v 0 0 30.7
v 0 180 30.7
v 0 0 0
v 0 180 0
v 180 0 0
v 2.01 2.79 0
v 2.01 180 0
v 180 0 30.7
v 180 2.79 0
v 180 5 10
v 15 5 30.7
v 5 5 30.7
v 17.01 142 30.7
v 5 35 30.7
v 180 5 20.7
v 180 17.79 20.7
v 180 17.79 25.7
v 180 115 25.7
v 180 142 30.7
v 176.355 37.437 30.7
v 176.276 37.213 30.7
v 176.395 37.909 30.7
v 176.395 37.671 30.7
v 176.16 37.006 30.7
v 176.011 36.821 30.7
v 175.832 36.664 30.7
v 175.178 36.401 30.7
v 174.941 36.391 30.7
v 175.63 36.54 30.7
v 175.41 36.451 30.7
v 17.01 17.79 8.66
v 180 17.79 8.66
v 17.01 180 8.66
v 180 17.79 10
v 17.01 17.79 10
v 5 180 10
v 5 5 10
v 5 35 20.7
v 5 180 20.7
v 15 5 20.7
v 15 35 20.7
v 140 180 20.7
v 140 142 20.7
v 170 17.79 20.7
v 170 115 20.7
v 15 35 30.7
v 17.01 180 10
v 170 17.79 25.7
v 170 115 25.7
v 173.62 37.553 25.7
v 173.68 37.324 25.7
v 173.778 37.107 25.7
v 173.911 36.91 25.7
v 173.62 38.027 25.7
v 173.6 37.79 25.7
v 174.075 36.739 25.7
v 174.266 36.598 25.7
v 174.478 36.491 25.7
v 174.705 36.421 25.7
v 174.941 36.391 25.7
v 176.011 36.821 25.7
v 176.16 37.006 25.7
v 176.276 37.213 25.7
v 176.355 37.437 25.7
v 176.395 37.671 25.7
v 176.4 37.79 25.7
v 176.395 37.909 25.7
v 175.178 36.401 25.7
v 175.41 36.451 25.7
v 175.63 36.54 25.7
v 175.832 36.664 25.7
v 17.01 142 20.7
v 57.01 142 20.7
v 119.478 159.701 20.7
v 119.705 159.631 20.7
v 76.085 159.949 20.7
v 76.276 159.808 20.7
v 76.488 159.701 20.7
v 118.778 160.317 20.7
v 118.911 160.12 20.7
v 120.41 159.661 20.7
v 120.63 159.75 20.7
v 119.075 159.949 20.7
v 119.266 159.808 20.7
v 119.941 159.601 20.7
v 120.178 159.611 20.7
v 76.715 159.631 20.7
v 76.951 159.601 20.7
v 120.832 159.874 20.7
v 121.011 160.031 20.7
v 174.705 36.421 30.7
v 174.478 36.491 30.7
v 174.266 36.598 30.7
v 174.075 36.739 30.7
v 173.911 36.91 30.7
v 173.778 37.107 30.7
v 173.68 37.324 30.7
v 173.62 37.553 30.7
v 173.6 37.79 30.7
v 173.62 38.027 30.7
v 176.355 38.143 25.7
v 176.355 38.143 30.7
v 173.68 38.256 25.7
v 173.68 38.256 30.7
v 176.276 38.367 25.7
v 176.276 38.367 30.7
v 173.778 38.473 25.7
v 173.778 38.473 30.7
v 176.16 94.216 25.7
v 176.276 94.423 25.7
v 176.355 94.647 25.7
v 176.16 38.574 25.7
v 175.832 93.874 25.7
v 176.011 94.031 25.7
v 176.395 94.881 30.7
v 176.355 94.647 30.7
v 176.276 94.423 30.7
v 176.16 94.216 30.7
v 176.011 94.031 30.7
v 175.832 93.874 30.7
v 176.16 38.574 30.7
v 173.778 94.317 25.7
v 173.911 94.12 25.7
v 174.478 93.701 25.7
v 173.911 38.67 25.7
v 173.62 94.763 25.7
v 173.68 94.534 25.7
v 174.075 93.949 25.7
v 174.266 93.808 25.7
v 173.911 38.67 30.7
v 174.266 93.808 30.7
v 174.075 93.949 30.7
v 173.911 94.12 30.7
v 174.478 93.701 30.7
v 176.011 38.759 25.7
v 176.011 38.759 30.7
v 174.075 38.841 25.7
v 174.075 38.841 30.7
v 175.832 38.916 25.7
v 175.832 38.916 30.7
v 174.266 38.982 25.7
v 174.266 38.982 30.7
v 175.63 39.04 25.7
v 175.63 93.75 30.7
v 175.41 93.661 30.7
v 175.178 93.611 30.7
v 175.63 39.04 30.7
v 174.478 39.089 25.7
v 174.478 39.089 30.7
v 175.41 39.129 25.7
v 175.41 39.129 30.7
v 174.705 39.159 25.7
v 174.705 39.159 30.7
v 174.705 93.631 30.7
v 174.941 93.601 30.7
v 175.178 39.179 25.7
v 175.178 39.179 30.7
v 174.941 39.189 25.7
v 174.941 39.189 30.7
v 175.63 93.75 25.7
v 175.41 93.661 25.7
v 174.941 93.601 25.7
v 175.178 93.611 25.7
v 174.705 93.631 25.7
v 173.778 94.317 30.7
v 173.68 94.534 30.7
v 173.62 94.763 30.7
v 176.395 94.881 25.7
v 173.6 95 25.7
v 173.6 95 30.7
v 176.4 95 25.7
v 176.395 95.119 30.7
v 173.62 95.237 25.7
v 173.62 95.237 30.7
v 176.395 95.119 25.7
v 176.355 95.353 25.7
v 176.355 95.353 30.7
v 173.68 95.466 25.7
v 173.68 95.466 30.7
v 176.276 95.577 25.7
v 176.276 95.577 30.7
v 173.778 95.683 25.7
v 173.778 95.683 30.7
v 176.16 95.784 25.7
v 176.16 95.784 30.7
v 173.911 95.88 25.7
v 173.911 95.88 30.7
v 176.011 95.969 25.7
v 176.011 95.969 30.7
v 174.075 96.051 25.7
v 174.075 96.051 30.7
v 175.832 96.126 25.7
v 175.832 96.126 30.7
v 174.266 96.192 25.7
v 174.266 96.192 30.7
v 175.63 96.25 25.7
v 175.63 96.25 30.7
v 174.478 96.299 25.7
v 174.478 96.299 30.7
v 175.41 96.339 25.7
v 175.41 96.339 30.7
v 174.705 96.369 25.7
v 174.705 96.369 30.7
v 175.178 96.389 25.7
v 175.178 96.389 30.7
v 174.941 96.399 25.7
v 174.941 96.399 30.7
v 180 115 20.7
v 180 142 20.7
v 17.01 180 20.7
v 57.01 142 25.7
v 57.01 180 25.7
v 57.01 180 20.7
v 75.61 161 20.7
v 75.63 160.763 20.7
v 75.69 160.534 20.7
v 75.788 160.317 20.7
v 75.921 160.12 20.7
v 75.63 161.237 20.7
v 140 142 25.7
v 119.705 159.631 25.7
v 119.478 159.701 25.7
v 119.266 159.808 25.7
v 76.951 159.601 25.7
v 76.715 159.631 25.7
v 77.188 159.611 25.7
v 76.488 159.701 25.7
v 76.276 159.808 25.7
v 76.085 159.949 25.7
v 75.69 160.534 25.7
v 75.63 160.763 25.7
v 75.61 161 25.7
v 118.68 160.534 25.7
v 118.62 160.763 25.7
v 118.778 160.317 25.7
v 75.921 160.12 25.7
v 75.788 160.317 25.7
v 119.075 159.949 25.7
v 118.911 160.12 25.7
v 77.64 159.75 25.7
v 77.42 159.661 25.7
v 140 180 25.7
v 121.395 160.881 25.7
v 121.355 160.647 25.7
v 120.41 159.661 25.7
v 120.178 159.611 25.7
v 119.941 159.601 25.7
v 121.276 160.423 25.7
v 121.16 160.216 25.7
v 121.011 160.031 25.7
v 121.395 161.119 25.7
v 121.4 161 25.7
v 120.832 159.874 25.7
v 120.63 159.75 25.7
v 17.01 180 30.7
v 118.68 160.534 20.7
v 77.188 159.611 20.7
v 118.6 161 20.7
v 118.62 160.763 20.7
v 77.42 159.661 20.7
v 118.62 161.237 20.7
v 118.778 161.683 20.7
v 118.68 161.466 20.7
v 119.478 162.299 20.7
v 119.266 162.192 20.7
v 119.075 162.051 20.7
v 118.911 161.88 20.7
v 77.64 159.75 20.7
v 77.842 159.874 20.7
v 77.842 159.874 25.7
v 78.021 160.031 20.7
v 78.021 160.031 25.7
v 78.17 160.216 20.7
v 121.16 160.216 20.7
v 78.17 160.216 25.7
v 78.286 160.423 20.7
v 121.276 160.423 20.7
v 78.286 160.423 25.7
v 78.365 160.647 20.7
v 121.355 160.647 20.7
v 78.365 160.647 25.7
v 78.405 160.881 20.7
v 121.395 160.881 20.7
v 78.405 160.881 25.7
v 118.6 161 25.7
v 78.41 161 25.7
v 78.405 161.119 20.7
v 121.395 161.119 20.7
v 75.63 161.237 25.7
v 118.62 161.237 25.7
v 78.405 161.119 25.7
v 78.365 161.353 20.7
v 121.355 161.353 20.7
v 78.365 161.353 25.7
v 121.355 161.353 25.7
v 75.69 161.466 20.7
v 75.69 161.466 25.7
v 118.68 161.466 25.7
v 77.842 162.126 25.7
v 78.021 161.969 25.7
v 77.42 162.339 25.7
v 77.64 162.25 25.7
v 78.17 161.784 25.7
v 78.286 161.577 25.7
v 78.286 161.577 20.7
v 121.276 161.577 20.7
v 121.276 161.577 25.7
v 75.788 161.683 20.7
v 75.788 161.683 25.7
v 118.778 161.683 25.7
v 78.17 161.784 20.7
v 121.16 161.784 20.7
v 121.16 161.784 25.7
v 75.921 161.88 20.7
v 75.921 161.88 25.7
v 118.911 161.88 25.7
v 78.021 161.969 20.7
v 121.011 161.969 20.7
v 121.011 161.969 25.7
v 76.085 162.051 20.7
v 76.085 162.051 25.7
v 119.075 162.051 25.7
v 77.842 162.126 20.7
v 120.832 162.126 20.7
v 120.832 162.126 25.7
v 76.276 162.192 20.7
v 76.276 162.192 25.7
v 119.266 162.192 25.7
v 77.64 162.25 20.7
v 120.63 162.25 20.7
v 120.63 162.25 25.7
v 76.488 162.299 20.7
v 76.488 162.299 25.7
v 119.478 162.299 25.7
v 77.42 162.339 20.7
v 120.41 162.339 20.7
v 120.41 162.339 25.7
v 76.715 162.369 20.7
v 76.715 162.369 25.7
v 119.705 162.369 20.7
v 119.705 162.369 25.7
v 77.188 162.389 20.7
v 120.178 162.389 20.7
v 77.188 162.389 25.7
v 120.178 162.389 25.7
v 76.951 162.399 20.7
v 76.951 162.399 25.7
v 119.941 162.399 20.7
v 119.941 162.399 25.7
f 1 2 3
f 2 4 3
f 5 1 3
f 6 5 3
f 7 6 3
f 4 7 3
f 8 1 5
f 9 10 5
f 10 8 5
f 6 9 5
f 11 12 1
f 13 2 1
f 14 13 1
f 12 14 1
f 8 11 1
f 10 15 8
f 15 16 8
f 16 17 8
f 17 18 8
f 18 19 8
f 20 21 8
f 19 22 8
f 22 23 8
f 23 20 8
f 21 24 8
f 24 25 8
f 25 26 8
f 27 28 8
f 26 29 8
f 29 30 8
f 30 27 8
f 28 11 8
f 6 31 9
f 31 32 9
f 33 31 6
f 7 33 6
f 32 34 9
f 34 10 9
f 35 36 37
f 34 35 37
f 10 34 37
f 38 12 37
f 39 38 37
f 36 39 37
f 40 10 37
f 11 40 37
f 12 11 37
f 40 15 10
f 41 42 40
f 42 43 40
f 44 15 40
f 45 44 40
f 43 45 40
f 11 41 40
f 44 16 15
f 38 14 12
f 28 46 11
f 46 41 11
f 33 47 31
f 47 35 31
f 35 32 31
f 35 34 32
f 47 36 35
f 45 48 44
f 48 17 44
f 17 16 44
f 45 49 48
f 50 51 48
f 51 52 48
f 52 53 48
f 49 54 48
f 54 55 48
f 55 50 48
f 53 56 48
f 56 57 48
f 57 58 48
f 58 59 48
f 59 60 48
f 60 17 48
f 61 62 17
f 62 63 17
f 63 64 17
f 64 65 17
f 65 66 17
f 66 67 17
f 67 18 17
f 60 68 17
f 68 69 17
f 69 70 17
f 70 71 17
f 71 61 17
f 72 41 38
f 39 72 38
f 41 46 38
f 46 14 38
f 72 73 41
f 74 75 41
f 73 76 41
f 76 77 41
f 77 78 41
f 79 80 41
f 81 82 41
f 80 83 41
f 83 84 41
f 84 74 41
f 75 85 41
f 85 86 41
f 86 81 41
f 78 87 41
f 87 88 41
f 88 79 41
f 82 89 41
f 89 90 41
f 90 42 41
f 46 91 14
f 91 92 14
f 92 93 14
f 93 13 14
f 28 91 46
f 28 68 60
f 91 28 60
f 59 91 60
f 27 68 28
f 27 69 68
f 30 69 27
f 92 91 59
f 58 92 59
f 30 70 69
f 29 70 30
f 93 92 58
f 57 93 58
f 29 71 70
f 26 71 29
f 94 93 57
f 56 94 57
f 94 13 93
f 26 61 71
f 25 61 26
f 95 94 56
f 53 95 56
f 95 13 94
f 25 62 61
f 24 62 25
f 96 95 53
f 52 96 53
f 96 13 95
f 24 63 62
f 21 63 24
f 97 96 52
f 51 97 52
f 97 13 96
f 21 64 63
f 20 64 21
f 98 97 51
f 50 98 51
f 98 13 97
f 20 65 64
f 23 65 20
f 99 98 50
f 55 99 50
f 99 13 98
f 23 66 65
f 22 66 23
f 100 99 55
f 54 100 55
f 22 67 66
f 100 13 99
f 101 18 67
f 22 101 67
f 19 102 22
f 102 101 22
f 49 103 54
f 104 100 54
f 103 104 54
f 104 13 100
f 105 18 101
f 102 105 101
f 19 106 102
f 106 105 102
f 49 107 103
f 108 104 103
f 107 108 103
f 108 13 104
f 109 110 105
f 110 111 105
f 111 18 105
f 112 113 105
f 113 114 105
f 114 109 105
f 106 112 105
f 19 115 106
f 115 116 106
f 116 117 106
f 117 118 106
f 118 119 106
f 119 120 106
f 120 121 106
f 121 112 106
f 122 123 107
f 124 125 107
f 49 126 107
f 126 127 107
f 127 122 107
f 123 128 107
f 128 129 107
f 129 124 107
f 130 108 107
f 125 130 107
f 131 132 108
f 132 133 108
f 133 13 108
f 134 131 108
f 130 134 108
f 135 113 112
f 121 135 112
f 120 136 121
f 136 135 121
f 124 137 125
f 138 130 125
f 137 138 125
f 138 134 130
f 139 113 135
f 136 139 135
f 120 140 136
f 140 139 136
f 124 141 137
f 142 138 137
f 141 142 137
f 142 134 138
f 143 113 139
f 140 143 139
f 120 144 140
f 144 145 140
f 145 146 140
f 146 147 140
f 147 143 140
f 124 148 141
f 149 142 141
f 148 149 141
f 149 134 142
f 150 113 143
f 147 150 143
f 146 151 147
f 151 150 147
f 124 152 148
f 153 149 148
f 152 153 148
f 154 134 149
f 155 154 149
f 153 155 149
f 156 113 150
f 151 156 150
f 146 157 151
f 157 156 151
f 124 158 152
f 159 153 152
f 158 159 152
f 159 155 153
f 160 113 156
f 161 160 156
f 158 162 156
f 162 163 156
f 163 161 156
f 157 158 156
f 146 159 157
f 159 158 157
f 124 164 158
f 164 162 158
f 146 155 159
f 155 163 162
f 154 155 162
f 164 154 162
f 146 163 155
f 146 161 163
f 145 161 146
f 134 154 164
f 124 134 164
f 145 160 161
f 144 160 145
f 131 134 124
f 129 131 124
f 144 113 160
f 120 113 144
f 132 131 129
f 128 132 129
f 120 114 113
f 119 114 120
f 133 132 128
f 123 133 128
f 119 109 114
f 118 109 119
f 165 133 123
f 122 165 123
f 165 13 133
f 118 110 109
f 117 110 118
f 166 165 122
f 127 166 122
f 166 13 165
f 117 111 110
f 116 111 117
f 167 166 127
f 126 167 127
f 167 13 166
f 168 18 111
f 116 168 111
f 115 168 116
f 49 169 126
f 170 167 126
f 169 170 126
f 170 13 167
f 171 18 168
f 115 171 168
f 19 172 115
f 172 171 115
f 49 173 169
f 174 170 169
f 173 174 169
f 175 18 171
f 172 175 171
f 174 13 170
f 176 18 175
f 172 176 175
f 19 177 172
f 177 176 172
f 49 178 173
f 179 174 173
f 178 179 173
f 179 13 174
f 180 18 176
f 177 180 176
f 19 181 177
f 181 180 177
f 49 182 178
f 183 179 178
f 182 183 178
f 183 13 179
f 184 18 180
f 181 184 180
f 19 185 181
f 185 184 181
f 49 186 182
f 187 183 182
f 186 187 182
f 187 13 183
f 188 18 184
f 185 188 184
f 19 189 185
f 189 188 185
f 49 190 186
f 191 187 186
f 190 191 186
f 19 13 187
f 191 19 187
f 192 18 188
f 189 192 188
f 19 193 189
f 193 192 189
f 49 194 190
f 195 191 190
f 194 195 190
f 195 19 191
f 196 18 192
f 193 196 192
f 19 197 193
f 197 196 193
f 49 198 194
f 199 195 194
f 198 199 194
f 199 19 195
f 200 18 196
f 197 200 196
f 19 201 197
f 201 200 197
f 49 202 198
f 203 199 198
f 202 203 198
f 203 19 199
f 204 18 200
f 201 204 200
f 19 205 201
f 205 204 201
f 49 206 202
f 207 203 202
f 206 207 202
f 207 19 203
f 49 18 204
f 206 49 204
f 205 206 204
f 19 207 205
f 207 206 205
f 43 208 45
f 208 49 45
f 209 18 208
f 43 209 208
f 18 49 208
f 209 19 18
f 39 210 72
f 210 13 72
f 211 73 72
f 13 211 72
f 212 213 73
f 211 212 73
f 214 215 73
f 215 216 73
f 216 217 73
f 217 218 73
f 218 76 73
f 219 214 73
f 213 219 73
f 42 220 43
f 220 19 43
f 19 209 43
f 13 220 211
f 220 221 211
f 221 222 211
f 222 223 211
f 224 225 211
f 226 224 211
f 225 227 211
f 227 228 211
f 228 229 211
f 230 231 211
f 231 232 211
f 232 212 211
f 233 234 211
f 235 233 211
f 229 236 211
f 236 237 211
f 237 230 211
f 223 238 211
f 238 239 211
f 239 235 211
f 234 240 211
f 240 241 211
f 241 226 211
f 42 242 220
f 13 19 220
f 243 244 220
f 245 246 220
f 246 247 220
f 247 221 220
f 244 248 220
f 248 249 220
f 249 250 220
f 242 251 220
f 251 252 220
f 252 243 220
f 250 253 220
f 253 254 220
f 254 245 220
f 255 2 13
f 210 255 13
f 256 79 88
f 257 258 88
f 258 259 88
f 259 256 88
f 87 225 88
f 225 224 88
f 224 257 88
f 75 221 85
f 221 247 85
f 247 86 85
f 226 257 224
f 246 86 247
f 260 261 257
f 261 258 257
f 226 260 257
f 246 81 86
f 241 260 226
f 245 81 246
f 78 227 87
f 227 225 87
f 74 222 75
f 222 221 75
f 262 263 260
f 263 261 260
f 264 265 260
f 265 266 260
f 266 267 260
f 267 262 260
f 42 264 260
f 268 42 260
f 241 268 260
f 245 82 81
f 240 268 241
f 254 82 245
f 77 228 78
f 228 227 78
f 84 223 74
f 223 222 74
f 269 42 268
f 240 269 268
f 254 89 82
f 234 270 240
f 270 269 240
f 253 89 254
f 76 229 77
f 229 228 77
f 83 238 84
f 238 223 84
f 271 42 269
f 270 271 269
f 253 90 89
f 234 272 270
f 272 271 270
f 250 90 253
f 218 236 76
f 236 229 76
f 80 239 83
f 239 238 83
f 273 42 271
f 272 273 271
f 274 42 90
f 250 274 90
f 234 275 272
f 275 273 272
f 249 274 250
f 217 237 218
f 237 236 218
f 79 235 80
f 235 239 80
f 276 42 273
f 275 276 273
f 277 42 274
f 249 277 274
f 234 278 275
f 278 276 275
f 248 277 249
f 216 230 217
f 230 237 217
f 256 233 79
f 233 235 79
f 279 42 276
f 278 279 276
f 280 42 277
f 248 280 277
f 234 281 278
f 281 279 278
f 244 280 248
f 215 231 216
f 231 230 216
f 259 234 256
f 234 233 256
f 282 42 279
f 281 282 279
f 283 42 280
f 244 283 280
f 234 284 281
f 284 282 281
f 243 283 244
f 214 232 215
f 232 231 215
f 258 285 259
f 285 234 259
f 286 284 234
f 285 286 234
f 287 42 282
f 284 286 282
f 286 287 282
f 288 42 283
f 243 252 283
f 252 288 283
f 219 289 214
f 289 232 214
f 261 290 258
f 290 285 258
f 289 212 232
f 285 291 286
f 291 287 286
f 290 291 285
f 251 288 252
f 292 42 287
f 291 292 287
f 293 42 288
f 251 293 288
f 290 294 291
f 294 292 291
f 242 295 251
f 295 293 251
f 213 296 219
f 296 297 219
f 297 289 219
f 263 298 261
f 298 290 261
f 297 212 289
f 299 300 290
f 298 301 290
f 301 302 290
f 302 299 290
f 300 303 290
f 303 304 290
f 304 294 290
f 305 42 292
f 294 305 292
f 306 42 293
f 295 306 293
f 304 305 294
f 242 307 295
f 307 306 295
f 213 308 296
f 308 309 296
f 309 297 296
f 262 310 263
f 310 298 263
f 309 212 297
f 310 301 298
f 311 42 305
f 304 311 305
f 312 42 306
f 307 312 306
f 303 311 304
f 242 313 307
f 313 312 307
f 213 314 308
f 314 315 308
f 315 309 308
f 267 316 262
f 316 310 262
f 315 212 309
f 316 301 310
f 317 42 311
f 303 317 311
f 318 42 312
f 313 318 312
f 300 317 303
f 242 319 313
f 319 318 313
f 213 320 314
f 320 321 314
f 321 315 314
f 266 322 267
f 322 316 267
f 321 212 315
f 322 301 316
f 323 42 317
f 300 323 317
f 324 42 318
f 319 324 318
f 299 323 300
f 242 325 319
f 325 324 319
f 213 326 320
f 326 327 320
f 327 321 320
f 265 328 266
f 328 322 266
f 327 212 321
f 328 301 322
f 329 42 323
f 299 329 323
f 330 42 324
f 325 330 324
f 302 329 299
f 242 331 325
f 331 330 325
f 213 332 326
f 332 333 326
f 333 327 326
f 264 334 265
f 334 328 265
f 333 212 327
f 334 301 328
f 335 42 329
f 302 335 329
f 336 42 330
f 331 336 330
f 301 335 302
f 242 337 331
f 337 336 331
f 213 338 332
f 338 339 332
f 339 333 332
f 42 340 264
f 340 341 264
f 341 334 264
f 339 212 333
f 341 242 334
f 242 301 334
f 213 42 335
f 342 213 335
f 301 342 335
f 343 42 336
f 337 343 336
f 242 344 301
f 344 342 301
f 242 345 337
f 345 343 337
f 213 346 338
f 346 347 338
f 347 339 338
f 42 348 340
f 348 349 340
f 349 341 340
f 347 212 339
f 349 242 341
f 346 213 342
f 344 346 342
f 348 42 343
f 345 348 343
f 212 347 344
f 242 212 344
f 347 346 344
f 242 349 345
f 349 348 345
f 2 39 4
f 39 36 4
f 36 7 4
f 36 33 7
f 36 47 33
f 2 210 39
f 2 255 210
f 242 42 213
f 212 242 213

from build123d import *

# Parameters (mm, degrees)
CROQUIS1_W              = 180
CROQUIS1_H              = 180
SALIENTE_EXTRUIR1_DEPTH = 30.7
CROQUIS2_W              = 162.99
CROQUIS2_H              = 162.21
CORTAR_EXTRUIR1_DEPTH   = 20.7
CROQUIS4_W              = 175
CROQUIS4_H              = 10.7
CORTAR_EXTRUIR2_DEPTH   = 175
CROQUIS5_W              = 40
CROQUIS5_H              = 38
CORTAR_EXTRUIR3_DEPTH   = 10
CROQUIS6_W              = 82.99
CROQUIS6_H              = 38
CORTAR_EXTRUIR4_DEPTH   = 5
CROQUIS7_W              = 10
CROQUIS7_H              = 97.21
CORTAR_EXTRUIR5_DEPTH   = 5
CROQUIS8_W              = 10
CROQUIS8_H              = 30
CORTAR_EXTRUIR6_DEPTH   = 20
CROQUIS9_R              = 1.4
CORTAR_EXTRUIR7_DEPTH   = 20
CHAFL_N1_SIZE           = 15
CHAFL_N1_SIZE2          = 8.660254038


with BuildPart() as part:
    # Croquis1 → Saliente-Extruir1 (new body)
    with BuildSketch(Plane.XY):
        with Locations((90, 90)):
            Rectangle(CROQUIS1_W, CROQUIS1_H)
    extrude(amount=SALIENTE_EXTRUIR1_DEPTH)

    # Croquis2 → Cortar-Extruir1 (cut)
    with BuildSketch(Plane(origin=(0, 0, 0), x_dir=(-1, 0, 0), z_dir=(0, 0, -1))):
        with Locations((-98.505, 98.895)):
            Rectangle(CROQUIS2_W, CROQUIS2_H)
    extrude(amount=-CORTAR_EXTRUIR1_DEPTH, mode=Mode.SUBTRACT)

    # Croquis4 → Cortar-Extruir2 (cut)
    with BuildSketch(Plane(origin=(0, 180, 0), x_dir=(1, 0, 0), z_dir=(0, 1, 0))):
        with Locations((92.5, -15.35)):
            Rectangle(CROQUIS4_W, CROQUIS4_H)
    extrude(amount=-CORTAR_EXTRUIR2_DEPTH, mode=Mode.SUBTRACT)

    # Croquis5 → Cortar-Extruir3 (cut)
    with BuildSketch(Plane(origin=(0, 0, 20.7), x_dir=(-1, 0, 0), z_dir=(0, 0, -1))):
        with Locations((-160, 161)):
            Rectangle(CROQUIS5_W, CROQUIS5_H)
        with Locations((-37.01, 161)):
            Rectangle(CROQUIS5_W, CROQUIS5_H)
    extrude(amount=-CORTAR_EXTRUIR3_DEPTH, mode=Mode.SUBTRACT)

    # Croquis6 → Cortar-Extruir4 (cut)
    with BuildSketch(Plane.XY.offset(30.7)):
        with Locations((98.505, 161)):
            Rectangle(CROQUIS6_W, CROQUIS6_H)
    extrude(amount=-CORTAR_EXTRUIR4_DEPTH, mode=Mode.SUBTRACT)

    # Croquis7 → Cortar-Extruir5 (cut)
    with BuildSketch(Plane(origin=(0, 0, 20.7), x_dir=(-1, 0, 0), z_dir=(0, 0, -1))):
        with Locations((-175, 66.395)):
            Rectangle(CROQUIS7_W, CROQUIS7_H)
    extrude(amount=-CORTAR_EXTRUIR5_DEPTH, mode=Mode.SUBTRACT)

    # Croquis8 → Cortar-Extruir6 (cut)
    with BuildSketch(Plane(origin=(0, 0, 20.7), x_dir=(-1, 0, 0), z_dir=(0, 0, -1))):
        with Locations((-10, 20)):
            Rectangle(CROQUIS8_W, CROQUIS8_H)
    extrude(amount=-CORTAR_EXTRUIR6_DEPTH, mode=Mode.SUBTRACT)

    # Croquis9 → Cortar-Extruir7 (cut)
    with BuildSketch(Plane(origin=(0, 0, 20.7), x_dir=(-1, 0, 0), z_dir=(0, 0, -1))):
        with Locations((-120, 161)):
            Circle(CROQUIS9_R)
        with Locations((-77.01, 161)):
            Circle(CROQUIS9_R)
        with Locations((-175, 95)):
            Circle(CROQUIS9_R)
        with Locations((-175, 37.79)):
            Circle(CROQUIS9_R)
    extrude(amount=-CORTAR_EXTRUIR7_DEPTH, mode=Mode.SUBTRACT)

    # Chaflán1
    chafl_n1_edges = [part.edges().sort_by_distance(p)[0] for p in [
        (98.505, 17.79, 0),
        (17.01, 98.895, 0),
    ]]
    chafl_n1_side = [part.faces().sort_by_distance(p)[0] for p in [
        (2.545584412, 90, 0),
    ]]
    chamfer(chafl_n1_edges, length=CHAFL_N1_SIZE, length2=CHAFL_N1_SIZE2, reference=chafl_n1_side[0])


solid = part.part
